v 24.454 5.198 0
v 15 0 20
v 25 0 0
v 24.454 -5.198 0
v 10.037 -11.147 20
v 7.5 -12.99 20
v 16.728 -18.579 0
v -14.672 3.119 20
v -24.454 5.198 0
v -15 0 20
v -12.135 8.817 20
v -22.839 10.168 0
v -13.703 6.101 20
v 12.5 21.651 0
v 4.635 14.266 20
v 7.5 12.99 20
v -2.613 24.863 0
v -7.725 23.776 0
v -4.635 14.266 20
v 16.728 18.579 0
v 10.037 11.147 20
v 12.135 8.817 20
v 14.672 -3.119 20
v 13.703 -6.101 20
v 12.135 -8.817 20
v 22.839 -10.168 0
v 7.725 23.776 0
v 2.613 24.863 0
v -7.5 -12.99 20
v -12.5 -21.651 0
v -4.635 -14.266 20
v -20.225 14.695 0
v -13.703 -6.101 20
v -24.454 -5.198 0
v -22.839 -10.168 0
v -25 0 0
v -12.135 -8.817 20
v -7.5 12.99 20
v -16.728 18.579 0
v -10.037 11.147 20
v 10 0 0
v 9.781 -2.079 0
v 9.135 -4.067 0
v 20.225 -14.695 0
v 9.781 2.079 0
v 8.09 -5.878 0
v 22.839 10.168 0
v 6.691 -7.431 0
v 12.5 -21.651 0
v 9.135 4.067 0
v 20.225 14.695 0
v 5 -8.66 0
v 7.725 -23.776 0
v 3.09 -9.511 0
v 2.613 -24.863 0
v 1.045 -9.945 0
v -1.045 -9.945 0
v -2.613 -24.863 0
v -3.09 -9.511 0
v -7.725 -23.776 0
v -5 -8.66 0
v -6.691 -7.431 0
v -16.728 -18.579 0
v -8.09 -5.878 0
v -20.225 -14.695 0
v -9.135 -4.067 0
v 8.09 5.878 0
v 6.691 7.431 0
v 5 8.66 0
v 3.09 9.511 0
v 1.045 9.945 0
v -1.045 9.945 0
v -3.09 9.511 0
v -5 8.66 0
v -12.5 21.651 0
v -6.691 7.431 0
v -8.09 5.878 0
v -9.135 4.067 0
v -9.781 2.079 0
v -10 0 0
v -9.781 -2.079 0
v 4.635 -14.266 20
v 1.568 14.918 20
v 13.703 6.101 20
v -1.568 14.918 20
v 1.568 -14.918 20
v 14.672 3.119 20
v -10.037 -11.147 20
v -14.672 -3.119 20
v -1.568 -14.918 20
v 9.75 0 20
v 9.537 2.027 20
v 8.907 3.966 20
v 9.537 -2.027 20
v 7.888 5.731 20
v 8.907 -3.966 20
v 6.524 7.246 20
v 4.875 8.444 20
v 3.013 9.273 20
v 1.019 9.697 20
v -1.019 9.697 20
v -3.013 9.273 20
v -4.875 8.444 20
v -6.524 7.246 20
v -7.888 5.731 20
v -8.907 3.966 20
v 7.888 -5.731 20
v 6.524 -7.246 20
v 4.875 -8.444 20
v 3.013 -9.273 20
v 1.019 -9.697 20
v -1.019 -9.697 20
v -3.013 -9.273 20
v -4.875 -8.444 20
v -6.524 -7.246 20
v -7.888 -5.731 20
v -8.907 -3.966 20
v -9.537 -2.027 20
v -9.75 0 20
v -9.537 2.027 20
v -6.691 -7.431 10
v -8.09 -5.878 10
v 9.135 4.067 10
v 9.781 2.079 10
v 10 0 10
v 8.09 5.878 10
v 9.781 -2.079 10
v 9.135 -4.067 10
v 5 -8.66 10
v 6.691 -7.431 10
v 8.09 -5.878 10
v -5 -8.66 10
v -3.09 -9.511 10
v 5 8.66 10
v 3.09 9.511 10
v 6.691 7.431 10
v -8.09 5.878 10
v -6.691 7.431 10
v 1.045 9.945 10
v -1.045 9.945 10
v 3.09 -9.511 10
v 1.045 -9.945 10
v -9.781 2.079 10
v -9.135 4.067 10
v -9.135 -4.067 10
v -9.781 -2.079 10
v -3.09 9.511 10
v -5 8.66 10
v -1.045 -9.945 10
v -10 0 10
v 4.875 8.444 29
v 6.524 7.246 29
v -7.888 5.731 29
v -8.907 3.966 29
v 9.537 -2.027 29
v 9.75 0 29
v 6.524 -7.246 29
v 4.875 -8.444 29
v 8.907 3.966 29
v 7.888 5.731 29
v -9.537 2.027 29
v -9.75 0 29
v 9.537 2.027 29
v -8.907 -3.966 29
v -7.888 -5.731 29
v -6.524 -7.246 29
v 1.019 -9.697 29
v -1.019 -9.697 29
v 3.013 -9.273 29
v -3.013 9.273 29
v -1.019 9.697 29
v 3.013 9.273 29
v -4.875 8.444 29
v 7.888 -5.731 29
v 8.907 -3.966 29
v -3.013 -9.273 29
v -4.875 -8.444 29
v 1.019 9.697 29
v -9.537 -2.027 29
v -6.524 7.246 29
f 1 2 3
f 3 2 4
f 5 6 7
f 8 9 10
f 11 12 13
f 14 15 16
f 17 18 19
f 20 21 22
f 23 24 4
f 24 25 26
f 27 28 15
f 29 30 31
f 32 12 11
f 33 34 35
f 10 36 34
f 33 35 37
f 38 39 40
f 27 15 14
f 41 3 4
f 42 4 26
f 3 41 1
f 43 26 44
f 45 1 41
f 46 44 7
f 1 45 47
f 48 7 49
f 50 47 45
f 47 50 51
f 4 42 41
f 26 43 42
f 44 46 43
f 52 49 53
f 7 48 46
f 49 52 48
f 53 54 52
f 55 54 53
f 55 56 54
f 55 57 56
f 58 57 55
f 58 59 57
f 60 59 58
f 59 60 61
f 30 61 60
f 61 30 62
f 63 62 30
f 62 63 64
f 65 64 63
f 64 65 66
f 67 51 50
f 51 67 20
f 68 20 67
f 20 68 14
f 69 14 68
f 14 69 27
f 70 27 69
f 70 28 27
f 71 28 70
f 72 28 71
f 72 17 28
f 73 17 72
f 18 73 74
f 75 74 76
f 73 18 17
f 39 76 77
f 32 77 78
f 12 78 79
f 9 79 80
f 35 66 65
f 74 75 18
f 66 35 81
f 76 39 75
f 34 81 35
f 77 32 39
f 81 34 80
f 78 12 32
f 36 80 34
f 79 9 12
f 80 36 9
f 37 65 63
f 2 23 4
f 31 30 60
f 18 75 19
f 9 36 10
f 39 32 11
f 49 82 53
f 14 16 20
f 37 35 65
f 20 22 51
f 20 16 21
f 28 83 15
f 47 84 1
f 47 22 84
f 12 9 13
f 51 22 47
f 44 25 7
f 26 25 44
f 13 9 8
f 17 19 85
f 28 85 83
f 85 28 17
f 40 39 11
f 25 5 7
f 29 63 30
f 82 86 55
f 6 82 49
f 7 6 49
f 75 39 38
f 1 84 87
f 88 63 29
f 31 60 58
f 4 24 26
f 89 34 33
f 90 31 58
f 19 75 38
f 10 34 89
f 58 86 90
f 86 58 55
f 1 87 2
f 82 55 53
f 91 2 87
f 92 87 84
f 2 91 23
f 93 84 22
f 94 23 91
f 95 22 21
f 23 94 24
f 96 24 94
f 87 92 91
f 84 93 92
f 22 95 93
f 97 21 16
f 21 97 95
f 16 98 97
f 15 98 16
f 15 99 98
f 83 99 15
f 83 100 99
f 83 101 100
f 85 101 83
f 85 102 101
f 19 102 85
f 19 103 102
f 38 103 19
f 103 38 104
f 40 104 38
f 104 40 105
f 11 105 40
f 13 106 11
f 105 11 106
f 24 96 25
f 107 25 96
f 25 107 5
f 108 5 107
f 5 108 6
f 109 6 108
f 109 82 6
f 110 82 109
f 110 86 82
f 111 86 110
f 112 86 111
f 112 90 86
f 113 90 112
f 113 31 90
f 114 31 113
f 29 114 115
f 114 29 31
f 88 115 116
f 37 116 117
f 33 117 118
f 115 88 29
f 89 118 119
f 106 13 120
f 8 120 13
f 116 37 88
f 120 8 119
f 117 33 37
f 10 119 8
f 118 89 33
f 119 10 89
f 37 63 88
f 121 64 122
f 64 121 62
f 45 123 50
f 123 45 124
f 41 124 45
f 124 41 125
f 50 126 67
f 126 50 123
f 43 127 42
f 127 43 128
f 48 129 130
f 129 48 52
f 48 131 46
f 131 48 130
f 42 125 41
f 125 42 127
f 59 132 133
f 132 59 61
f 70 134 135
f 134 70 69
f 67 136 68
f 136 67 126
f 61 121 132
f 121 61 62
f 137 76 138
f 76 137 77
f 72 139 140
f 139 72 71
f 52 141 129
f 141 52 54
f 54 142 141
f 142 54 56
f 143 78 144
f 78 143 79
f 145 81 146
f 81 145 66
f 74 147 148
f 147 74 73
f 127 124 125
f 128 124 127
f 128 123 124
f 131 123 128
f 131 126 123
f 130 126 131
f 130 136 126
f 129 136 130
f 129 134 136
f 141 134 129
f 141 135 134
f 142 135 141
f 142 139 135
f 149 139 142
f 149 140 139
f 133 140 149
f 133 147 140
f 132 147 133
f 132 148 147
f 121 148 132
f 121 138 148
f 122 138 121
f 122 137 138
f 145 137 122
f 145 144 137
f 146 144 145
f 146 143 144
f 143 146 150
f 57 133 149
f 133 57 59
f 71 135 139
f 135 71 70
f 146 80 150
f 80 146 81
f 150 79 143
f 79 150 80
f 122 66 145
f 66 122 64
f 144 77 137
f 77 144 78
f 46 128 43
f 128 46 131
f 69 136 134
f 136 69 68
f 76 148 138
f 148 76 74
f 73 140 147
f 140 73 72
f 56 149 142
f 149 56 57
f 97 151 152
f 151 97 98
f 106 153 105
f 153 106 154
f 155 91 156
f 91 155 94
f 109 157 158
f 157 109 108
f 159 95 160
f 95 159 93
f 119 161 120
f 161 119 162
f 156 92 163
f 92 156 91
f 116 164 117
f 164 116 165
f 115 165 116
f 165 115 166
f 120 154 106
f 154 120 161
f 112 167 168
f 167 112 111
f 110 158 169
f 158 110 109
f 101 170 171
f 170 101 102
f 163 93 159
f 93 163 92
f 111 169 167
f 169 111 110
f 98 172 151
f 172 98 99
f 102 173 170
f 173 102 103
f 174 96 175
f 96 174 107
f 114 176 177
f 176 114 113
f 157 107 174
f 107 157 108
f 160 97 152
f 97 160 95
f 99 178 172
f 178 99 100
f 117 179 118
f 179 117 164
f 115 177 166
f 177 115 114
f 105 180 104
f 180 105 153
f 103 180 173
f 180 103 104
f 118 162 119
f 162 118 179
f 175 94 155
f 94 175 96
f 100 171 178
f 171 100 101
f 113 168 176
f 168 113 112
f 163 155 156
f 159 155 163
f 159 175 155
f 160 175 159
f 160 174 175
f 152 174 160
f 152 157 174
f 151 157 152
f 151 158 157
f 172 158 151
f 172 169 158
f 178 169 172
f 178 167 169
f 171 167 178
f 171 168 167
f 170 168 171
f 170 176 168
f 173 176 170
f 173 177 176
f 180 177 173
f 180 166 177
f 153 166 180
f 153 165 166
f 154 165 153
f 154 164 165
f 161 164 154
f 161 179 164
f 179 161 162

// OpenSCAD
scale([.5, .5, 1]) {


    difference() {
        translate([0, 0, 0]) { 
       cylinder(20, 50, 30);
    }
    translate([0, 0, -1]) { 
       cylinder(11, 20, 20);
    }
    
}
        translate([0, 0, 19]) { 
       cylinder(10, 19.5, 19.5);
    }
}
